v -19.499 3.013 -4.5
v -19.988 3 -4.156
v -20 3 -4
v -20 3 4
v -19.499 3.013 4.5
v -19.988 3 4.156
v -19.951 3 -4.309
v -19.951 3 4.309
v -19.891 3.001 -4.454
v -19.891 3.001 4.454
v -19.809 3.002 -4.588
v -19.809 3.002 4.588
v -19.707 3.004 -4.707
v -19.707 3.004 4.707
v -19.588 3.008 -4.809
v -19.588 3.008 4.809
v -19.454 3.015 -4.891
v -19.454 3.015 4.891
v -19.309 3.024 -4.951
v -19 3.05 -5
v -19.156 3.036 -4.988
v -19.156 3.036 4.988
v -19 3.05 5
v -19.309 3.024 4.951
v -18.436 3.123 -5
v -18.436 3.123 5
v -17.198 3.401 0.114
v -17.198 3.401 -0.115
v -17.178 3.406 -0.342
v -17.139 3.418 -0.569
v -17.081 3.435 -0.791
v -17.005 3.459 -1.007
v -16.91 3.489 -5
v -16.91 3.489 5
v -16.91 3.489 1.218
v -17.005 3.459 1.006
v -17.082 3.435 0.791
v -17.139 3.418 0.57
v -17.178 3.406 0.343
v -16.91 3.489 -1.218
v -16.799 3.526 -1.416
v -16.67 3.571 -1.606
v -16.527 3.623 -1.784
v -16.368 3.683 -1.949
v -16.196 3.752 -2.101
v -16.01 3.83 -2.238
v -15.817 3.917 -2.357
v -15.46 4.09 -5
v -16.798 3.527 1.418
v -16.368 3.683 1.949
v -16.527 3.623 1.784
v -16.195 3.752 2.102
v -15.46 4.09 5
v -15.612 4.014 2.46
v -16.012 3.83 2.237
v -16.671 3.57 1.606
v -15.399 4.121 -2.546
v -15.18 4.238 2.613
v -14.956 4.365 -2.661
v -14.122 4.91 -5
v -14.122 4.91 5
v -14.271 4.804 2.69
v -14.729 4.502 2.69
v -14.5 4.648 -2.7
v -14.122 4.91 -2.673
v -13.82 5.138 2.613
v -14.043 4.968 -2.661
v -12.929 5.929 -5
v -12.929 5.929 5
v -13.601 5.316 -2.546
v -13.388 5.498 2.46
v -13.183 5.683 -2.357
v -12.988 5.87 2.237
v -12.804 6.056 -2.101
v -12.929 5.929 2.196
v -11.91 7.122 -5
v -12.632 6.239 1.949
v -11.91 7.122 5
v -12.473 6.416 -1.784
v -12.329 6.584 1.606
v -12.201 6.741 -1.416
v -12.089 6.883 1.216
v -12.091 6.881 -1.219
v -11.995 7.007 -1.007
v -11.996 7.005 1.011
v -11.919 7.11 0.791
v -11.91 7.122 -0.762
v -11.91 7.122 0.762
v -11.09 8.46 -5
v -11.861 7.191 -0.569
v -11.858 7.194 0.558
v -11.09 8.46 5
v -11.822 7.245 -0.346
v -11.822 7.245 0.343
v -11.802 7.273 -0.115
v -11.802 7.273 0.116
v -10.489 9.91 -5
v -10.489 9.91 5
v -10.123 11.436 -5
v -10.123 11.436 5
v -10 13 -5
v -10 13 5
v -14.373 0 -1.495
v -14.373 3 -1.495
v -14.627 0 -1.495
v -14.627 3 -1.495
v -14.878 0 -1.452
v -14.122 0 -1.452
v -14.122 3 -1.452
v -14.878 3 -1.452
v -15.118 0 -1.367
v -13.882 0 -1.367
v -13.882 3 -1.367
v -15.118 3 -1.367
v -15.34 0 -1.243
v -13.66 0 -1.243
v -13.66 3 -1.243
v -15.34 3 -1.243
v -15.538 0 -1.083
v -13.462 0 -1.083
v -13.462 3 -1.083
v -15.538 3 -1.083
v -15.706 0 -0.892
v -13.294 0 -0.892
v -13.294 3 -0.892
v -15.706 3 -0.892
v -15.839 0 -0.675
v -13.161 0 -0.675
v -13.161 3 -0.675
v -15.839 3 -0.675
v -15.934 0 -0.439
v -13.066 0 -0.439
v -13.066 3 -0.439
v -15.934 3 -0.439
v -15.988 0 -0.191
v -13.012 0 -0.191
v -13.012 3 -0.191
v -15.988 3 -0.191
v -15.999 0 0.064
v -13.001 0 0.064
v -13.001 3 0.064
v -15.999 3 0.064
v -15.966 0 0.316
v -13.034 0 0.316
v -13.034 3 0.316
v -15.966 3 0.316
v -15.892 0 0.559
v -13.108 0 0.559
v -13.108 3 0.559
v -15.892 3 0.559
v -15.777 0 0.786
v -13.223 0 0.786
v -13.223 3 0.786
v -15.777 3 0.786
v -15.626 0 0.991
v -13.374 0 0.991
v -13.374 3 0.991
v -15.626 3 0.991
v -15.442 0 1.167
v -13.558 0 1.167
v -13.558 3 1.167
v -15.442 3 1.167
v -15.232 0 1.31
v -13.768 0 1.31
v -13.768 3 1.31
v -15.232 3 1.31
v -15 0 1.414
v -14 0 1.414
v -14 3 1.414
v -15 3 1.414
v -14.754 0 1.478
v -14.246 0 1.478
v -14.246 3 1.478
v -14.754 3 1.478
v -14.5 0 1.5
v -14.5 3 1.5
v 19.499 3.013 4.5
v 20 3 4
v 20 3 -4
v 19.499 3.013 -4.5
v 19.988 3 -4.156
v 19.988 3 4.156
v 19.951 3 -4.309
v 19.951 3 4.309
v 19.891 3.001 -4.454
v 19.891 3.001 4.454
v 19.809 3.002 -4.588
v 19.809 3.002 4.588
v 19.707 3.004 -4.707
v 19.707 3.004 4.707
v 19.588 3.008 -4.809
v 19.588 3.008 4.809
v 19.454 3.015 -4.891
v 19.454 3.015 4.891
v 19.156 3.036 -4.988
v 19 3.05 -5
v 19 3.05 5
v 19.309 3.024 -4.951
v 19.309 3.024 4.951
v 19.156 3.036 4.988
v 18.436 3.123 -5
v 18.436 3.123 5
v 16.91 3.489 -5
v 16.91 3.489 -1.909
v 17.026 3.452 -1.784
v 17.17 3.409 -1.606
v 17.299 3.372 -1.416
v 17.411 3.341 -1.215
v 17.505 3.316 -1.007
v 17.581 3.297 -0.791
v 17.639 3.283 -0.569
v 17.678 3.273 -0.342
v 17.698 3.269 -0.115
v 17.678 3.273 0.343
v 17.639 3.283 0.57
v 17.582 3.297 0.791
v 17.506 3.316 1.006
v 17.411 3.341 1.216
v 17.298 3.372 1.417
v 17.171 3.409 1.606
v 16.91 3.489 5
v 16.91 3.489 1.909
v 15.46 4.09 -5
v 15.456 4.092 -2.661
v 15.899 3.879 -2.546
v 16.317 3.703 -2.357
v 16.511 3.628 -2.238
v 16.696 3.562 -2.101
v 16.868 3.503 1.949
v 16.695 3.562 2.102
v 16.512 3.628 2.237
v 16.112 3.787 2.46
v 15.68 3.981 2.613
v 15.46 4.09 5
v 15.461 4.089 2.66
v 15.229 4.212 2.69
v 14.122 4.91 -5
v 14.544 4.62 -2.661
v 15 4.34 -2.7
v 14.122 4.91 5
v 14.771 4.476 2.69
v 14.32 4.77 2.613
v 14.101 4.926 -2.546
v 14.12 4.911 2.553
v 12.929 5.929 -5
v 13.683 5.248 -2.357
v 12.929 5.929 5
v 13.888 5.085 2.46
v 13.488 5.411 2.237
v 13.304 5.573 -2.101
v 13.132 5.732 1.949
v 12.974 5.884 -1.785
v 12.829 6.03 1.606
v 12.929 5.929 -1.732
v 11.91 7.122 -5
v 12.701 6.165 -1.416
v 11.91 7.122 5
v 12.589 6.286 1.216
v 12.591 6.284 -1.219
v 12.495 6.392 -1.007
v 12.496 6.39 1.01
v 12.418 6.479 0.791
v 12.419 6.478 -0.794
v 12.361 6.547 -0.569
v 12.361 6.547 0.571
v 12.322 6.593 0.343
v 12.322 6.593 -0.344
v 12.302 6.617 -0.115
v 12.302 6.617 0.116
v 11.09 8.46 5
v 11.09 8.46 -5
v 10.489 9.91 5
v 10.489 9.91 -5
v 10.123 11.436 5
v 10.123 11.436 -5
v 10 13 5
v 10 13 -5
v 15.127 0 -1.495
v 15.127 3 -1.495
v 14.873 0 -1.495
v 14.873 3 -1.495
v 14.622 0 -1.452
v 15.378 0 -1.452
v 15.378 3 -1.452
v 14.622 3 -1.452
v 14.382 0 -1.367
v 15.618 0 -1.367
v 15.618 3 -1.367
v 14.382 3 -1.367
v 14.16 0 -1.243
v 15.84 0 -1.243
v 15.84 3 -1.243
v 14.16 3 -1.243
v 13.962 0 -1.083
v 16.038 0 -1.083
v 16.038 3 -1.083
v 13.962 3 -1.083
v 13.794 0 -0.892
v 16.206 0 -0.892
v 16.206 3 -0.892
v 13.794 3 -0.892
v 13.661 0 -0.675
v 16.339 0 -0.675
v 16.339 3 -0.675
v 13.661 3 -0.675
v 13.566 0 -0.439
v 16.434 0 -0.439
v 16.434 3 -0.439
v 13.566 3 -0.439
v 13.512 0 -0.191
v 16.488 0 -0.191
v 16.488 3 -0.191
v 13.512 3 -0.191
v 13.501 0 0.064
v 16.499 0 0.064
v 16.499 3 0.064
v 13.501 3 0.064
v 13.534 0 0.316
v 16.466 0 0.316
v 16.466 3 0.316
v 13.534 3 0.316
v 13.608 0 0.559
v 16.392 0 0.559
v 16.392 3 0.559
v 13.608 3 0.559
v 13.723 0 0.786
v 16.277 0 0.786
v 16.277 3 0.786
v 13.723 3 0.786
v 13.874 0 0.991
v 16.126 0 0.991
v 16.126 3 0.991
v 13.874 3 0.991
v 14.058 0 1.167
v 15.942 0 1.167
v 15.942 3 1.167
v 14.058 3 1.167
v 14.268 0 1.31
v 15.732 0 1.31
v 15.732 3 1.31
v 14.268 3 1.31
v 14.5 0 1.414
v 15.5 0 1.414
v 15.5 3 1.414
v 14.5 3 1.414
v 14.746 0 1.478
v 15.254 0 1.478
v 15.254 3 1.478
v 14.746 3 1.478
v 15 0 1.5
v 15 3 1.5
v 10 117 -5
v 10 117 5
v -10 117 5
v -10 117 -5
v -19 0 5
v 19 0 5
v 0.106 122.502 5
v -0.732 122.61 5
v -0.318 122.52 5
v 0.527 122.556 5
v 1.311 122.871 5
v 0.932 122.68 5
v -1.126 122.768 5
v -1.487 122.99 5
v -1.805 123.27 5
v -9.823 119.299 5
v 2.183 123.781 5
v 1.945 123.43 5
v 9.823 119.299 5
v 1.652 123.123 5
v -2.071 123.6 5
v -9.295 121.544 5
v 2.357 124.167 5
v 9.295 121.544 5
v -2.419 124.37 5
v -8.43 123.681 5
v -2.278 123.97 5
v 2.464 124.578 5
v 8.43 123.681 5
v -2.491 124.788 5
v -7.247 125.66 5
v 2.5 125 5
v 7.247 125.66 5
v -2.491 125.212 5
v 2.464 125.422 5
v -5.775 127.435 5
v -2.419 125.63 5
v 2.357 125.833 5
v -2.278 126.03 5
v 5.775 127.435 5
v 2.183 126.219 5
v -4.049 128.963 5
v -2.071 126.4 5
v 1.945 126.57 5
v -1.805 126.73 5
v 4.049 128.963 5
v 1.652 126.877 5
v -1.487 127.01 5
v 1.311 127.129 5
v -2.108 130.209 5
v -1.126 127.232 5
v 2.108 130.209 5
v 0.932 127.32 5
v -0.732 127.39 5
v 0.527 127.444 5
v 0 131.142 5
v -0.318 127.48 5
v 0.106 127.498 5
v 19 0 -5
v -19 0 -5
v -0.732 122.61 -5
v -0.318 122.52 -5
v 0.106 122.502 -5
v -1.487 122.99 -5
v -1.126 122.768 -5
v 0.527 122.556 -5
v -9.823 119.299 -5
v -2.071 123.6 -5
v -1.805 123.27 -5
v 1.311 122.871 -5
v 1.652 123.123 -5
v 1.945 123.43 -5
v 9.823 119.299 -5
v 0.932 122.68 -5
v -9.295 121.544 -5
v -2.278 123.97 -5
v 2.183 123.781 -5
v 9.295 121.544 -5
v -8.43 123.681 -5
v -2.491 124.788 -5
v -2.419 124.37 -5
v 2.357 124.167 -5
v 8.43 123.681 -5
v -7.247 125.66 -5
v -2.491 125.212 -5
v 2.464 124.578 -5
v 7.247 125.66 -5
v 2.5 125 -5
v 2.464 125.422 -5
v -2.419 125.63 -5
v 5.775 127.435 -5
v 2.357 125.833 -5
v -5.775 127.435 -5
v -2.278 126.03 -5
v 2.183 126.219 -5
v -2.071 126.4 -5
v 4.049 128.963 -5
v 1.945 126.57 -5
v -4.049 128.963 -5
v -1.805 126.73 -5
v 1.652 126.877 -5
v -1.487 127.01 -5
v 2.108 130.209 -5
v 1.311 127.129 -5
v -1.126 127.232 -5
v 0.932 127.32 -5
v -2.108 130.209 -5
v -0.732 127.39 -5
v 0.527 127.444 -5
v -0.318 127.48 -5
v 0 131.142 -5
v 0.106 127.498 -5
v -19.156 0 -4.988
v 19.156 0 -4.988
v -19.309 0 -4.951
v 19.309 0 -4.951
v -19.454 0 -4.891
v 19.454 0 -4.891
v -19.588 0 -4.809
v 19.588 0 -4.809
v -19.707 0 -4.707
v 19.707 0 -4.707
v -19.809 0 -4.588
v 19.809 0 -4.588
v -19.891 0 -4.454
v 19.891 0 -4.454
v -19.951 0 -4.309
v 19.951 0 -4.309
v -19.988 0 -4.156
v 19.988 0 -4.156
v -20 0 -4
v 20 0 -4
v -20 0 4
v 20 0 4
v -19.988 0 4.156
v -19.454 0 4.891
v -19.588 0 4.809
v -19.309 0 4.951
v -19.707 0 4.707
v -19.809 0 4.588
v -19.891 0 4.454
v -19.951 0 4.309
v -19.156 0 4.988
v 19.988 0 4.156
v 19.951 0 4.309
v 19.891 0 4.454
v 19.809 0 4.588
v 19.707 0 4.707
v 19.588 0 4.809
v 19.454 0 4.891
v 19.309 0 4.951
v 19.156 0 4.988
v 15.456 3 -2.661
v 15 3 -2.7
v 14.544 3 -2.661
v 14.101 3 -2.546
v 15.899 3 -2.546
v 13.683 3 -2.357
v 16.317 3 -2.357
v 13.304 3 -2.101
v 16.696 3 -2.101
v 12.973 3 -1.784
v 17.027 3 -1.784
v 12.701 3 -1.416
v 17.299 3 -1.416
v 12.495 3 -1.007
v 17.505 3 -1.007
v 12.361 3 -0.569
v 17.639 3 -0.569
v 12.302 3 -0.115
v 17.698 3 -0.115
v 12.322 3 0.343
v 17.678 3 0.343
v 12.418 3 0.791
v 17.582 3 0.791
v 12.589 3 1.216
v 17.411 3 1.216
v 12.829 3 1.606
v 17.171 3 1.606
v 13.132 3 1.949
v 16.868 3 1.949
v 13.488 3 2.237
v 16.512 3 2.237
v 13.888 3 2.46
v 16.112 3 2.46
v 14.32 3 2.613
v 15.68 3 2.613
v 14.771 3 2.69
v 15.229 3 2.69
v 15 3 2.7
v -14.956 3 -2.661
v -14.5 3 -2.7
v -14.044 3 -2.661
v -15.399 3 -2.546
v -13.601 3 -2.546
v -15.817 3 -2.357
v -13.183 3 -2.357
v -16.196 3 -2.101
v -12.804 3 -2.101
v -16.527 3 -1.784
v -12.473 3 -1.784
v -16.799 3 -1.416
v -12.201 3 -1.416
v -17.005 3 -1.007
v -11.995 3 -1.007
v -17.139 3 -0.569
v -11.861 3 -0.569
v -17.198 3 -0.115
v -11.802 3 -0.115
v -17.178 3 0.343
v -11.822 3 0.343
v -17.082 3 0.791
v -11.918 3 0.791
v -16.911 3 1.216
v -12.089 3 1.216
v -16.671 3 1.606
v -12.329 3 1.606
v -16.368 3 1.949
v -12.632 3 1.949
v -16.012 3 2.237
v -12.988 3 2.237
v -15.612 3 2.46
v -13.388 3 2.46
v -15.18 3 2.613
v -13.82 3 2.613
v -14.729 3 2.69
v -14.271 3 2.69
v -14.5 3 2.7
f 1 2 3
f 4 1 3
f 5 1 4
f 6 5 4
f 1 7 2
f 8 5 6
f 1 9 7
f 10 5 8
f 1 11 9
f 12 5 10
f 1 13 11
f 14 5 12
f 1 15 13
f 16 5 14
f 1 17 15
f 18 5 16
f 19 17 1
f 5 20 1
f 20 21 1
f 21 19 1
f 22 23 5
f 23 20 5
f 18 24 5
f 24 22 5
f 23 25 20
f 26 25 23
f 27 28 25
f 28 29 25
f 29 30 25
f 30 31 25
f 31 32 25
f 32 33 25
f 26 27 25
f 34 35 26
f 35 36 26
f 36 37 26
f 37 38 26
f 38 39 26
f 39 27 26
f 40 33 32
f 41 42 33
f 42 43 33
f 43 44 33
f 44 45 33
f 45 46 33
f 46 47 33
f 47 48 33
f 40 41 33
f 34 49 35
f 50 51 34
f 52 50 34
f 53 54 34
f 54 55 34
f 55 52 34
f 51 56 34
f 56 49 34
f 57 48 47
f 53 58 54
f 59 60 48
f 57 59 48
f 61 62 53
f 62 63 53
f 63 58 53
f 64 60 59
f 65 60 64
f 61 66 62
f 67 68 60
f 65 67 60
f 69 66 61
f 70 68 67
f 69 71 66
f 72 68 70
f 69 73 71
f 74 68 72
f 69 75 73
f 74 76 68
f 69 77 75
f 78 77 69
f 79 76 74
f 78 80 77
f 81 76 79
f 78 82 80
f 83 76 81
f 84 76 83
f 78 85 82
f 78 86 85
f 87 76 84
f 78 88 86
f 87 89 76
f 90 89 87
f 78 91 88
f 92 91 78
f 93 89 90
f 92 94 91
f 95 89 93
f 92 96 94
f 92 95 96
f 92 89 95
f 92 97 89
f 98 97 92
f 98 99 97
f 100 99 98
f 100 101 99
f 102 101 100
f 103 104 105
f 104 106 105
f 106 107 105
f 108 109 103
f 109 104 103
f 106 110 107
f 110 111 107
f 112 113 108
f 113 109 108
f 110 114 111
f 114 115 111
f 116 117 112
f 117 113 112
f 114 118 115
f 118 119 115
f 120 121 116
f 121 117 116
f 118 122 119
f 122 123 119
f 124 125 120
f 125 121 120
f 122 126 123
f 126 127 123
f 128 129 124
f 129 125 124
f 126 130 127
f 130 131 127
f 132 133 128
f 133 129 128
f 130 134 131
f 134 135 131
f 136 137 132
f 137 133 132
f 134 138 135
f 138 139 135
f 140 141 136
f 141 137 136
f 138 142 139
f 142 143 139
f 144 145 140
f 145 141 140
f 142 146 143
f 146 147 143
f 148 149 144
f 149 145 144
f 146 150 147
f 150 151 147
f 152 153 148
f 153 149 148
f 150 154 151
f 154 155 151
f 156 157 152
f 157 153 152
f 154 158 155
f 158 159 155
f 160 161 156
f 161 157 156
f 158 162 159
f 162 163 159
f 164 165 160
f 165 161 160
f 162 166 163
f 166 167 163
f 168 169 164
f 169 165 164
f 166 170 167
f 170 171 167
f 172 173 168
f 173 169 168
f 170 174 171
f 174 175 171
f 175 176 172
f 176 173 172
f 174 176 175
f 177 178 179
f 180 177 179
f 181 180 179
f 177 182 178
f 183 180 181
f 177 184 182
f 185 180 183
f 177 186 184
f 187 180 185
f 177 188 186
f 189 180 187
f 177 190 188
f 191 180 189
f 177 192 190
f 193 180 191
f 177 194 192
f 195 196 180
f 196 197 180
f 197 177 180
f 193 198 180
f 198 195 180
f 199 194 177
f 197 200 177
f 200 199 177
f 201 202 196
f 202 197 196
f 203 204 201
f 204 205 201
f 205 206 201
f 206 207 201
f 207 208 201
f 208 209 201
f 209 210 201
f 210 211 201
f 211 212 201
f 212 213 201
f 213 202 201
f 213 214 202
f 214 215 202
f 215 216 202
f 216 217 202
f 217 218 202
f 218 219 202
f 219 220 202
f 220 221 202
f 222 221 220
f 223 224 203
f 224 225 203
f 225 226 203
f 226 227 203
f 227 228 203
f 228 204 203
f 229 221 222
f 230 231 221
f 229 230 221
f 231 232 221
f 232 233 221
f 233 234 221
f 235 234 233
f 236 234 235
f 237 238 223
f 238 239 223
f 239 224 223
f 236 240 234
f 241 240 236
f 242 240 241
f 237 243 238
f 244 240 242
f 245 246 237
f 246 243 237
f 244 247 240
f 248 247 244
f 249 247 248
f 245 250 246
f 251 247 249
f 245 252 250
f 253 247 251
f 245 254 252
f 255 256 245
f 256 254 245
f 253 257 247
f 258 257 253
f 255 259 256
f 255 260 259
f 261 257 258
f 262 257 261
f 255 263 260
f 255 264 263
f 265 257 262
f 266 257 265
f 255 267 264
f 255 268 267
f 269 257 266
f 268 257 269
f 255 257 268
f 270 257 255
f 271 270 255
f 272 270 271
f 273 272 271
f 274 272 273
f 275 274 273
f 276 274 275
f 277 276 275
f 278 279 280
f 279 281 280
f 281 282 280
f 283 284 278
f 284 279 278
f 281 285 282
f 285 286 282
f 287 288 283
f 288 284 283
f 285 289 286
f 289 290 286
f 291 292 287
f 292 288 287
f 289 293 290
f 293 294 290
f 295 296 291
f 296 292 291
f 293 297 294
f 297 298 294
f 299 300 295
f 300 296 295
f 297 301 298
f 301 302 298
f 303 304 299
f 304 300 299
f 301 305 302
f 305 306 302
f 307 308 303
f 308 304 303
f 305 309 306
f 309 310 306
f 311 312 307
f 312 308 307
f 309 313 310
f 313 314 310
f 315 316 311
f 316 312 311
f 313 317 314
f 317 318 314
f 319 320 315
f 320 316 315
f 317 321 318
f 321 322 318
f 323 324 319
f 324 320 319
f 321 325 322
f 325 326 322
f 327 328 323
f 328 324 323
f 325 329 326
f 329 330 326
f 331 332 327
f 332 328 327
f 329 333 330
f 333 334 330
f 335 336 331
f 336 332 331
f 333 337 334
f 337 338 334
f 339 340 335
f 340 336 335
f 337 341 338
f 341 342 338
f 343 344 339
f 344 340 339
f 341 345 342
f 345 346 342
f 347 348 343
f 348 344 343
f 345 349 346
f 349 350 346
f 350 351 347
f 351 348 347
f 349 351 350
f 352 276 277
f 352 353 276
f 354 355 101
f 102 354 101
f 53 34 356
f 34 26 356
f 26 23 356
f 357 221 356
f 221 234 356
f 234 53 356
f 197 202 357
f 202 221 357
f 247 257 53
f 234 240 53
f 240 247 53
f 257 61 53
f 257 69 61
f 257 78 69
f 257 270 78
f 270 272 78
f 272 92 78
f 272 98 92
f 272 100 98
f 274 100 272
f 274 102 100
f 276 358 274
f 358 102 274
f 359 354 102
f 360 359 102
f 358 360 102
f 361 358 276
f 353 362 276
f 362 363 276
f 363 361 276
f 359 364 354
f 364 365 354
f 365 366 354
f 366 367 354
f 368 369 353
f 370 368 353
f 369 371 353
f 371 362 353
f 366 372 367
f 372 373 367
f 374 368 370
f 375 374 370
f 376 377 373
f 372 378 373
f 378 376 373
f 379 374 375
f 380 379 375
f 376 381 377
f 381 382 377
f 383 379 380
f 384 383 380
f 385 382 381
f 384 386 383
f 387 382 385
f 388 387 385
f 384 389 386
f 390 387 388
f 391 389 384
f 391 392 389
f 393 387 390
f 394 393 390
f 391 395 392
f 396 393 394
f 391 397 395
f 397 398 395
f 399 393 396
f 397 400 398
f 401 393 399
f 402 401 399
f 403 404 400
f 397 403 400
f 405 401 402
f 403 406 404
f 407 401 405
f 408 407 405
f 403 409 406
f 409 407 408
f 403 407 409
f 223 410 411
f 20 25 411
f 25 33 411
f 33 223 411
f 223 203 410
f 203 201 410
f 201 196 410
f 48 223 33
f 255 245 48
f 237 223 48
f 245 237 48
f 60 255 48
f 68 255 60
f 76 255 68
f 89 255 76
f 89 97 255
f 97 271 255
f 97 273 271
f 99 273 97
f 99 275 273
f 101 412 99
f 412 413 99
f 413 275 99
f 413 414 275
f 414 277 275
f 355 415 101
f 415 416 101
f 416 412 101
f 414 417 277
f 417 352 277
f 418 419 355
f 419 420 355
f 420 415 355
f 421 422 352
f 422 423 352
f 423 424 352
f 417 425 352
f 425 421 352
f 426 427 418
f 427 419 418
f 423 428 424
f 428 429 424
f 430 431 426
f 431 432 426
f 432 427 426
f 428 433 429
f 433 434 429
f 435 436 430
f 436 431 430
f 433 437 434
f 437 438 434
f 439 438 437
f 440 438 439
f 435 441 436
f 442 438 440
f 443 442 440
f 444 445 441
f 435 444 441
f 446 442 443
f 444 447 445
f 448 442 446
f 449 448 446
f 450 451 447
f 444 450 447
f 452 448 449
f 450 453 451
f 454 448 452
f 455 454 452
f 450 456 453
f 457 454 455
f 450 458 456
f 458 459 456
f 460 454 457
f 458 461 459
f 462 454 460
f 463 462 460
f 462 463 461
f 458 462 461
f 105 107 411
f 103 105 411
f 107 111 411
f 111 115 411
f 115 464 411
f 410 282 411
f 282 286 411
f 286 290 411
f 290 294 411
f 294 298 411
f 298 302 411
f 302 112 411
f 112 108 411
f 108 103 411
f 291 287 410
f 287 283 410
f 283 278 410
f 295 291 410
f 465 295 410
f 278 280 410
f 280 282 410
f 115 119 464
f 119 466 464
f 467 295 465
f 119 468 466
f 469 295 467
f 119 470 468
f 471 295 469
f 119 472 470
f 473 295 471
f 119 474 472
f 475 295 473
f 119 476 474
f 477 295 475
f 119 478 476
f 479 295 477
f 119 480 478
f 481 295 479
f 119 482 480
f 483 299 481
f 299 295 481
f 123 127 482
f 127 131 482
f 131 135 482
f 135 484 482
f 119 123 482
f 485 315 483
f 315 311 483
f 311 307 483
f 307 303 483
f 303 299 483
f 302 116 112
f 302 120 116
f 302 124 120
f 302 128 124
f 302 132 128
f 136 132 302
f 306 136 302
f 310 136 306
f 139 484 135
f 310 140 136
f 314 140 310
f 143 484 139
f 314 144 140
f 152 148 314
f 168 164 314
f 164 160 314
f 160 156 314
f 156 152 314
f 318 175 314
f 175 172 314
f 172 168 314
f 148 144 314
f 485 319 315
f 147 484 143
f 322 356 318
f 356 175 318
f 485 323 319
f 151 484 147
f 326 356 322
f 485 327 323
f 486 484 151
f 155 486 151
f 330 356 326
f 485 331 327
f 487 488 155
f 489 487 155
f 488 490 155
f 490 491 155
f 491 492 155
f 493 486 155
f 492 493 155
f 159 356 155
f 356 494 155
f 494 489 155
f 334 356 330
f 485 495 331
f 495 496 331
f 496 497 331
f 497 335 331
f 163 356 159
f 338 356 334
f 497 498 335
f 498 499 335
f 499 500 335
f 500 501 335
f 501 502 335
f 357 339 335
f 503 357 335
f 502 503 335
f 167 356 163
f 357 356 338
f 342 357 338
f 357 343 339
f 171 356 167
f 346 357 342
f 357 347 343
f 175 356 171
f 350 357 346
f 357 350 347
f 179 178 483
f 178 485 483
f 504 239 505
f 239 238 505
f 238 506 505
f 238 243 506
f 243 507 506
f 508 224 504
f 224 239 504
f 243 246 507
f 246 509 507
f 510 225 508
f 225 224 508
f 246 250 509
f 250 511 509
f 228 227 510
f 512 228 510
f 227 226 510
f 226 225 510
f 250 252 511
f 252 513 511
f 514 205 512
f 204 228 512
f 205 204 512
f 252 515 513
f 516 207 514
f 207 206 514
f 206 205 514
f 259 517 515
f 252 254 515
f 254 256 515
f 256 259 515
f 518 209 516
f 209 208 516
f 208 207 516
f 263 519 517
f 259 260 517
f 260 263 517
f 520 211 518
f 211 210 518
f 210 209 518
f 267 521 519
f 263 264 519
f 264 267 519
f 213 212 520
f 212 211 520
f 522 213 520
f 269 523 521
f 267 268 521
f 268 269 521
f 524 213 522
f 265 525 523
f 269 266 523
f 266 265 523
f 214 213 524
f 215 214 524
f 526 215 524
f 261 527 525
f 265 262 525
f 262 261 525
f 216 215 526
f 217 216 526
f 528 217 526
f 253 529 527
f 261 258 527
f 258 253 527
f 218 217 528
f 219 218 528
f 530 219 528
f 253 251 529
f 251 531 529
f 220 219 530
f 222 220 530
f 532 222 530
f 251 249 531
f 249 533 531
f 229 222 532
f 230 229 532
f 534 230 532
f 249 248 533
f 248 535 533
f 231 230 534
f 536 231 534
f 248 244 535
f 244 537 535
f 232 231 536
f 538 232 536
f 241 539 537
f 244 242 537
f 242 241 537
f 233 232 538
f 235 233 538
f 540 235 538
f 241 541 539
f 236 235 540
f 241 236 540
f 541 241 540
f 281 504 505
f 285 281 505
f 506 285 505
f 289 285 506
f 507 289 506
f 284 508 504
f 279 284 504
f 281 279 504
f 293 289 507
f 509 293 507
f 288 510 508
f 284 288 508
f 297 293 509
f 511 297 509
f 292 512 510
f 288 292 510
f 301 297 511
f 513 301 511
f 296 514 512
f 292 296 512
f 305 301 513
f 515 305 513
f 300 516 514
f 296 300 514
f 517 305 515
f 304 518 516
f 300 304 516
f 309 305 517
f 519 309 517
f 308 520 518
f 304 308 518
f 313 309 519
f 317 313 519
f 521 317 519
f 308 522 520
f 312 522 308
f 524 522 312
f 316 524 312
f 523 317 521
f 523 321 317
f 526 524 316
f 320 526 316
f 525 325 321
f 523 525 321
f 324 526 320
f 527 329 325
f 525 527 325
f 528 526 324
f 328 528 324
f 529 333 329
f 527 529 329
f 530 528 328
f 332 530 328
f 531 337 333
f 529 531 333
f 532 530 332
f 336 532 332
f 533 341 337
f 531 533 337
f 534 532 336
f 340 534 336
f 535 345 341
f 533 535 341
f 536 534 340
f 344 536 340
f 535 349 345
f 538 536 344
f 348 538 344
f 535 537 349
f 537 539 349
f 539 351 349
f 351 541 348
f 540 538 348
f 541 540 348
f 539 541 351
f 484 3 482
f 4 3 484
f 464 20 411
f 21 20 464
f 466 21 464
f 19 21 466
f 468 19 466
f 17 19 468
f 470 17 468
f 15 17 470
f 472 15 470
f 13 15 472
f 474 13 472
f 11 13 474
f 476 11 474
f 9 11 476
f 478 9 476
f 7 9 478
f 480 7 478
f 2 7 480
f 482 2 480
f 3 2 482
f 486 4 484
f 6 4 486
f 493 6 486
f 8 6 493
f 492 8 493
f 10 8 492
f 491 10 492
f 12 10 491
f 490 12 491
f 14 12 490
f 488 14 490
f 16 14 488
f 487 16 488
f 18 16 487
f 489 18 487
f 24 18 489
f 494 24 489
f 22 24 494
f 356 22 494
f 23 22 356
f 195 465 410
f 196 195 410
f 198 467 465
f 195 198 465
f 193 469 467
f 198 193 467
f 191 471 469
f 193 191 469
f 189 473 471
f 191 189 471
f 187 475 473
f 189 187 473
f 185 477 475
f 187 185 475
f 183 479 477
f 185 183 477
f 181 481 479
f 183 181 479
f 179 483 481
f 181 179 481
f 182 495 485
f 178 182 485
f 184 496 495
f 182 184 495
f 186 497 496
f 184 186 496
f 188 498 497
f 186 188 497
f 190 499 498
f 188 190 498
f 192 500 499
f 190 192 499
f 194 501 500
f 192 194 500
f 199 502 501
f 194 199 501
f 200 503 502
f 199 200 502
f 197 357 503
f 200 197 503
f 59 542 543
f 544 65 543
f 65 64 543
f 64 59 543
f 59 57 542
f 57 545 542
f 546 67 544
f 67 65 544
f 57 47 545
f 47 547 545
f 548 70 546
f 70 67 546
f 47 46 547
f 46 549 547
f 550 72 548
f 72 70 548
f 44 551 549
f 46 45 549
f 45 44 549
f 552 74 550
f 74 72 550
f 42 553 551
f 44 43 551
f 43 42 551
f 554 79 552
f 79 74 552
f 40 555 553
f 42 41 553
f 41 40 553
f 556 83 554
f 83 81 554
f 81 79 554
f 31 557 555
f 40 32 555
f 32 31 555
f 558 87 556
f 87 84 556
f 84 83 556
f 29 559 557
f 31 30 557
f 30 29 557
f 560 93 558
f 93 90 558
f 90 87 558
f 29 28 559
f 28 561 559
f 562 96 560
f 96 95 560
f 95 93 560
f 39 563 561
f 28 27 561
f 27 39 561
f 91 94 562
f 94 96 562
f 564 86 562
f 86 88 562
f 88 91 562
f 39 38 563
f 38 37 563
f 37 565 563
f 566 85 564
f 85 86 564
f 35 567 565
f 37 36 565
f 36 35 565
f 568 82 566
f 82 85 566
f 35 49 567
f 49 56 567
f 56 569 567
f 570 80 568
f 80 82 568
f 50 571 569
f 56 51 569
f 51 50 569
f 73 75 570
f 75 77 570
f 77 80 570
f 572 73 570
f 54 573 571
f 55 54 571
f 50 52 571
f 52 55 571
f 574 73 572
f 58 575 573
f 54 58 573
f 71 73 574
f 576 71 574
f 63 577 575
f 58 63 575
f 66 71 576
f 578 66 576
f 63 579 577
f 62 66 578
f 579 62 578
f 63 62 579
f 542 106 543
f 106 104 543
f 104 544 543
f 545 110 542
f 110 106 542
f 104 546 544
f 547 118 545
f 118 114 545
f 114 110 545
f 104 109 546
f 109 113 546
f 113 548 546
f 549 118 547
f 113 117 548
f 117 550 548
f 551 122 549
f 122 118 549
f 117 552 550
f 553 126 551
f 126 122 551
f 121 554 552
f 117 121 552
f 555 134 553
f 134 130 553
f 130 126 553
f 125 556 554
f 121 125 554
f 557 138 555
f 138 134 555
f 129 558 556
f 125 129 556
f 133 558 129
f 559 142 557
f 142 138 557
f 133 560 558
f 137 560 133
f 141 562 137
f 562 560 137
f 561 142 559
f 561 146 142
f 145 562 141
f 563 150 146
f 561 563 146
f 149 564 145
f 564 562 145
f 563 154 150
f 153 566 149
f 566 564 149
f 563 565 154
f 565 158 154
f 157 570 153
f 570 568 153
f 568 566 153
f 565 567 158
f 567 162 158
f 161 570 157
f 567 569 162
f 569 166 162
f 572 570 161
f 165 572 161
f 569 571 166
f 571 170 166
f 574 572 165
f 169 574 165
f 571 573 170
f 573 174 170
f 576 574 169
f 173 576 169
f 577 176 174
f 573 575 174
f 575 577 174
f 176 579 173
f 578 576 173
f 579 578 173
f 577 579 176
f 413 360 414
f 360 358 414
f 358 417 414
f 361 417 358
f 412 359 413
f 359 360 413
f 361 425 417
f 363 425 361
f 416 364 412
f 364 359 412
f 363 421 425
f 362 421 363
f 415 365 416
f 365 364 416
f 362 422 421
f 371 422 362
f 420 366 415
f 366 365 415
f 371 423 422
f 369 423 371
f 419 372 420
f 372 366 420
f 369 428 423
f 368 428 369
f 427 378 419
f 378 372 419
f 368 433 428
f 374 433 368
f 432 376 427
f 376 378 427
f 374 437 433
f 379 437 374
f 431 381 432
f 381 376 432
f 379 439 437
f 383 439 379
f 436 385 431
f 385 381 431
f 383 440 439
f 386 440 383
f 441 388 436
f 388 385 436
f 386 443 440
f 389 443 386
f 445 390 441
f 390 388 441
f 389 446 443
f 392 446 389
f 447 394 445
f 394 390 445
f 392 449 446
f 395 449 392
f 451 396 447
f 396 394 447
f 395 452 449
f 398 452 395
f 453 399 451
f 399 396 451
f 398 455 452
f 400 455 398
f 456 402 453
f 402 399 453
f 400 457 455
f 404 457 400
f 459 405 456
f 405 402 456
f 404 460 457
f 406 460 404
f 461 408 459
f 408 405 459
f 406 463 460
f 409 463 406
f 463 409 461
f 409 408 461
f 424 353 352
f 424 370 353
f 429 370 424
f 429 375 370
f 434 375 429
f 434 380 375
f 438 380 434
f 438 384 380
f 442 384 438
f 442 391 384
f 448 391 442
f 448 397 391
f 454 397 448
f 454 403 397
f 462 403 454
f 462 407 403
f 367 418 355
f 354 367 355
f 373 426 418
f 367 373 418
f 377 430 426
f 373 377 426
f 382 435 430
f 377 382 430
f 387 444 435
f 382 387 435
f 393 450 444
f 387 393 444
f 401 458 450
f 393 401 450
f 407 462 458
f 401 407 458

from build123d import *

# Parameters (mm, degrees)
SKETCH2_W               = 20
SKETCH2_H               = 10
BOSS_EXTRUDE1_DEPTH     = 132
SKETCH6_W               = 10
SKETCH6_H               = 3
BOSS_EXTRUDE2_DEPTH     = 10
FILLET2_R               = 10
CUT_EXTRUDE5_DEPTH      = 131.636901372
CUT_EXTRUDE5_DEPTH_BACK = 131.636901372
SKETCH19_R              = 1.5
SKETCH19_5_R            = 2.7
SKETCH19_5_R_2          = 1.5
CUT_EXTRUDE7_DEPTH      = 131.636901376
FILLET1_R               = 1
FILLET3_R               = 10
CUT_EXTRUDE8_DEPTH      = 131.636901391
CUT_EXTRUDE8_DEPTH_BACK = 131.636901391
SKETCH20_R              = 1.5
SKETCH20_3_R            = 2.7
SKETCH20_3_R_2          = 1.5
CUT_EXTRUDE9_DEPTH      = 131.636901391
SKETCH21_R              = 2.5
CUT_EXTRUDE10_DEPTH     = 10
FILLET4_R               = 15


# Some blends are built 0.0001 mm under size
with BuildPart() as part:
    # Sketch2 → Boss-Extrude1 (new body)
    with BuildSketch(Plane(origin=(0, 0, 0), x_dir=(1, 0, 0), z_dir=(0, 1, 0))):
        Rectangle(SKETCH2_W, SKETCH2_H)
    extrude(amount=BOSS_EXTRUDE1_DEPTH)

    # Sketch6 → Boss-Extrude2 (add)
    with BuildSketch(Plane(origin=(10, 0, 0), x_dir=(0, 0, -1), z_dir=(1, 0, 0))):
        with Locations((0, 1.5)):
            Rectangle(SKETCH6_W, SKETCH6_H)
    boss_extrude2 = extrude(amount=BOSS_EXTRUDE2_DEPTH)

    # Fillet2
    fillet2_edges = [part.edges().sort_by_distance(p)[0] for p in [
        (10, 3, 0),
    ]]
    fillet(fillet2_edges, radius=FILLET2_R - 0.0001)  # a hair under: the kernel refuses the full size

    # Sketch19 → Cut-Extrude5 (cut, two sides: drawn at the far end of the back side and taken through both)
    with BuildSketch(Plane(origin=(0, 3, 0), x_dir=(1, 0, 0), z_dir=(0, 1, 0)).offset(-CUT_EXTRUDE5_DEPTH_BACK)):
        with Locations(Location((15, 0, 0), (0, 0, 270))):
            Circle(SKETCH19_R)
    extrude(amount=CUT_EXTRUDE5_DEPTH + CUT_EXTRUDE5_DEPTH_BACK, mode=Mode.SUBTRACT)

    # Sketch19<5> → Cut-Extrude7 (cut, through all)
    with BuildSketch(Plane(origin=(0, 3, 0), x_dir=(1, 0, 0), z_dir=(0, 1, 0))):
        with Locations(Location((15, 0, 0), (0, 0, 90))):
            Circle(SKETCH19_5_R)
        with Locations(Location((15, 0, 0), (0, 0, 270))):
            Circle(SKETCH19_5_R_2, mode=Mode.SUBTRACT)
    extrude(amount=CUT_EXTRUDE7_DEPTH, mode=Mode.SUBTRACT)

    # Mirror16: Boss-Extrude2 across plane
    add(boss_extrude2.mirror(Plane(origin=(0, 0, 0), x_dir=(0, 0, 1), z_dir=(1, 0, 0))))

    # Fillet1
    fillet1_edges = [part.edges().sort_by_distance(p)[0] for p in [
        (20, 1.5, 5),
        (20, 1.5, -5),
        (-20, 1.5, 5),
        (-20, 1.5, -5),
    ]]
    fillet(fillet1_edges, radius=FILLET1_R)

    # Fillet3
    fillet3_edges = [part.edges().sort_by_distance(p)[0] for p in [
        (-10, 3, 0),
    ]]
    fillet(fillet3_edges, radius=FILLET3_R - 0.0001)  # a hair under: the kernel refuses the full size

    # Sketch20 → Cut-Extrude8 (cut, two sides: drawn at the far end of the back side and taken through both)
    with BuildSketch(Plane(origin=(0, 3, 0), x_dir=(1, 0, 0), z_dir=(0, 1, 0)).offset(-CUT_EXTRUDE8_DEPTH_BACK)):
        with Locations(Location((-14.5, 0, 0), (0, 0, 270))):
            Circle(SKETCH20_R)
    extrude(amount=CUT_EXTRUDE8_DEPTH + CUT_EXTRUDE8_DEPTH_BACK, mode=Mode.SUBTRACT)

    # Sketch20<3> → Cut-Extrude9 (cut, through all)
    with BuildSketch(Plane(origin=(0, 3, 0), x_dir=(1, 0, 0), z_dir=(0, 1, 0))):
        with Locations(Location((-14.5, 0, 0), (0, 0, 90))):
            Circle(SKETCH20_3_R)
        with Locations(Location((-14.5, 0, 0), (0, 0, 270))):
            Circle(SKETCH20_3_R_2, mode=Mode.SUBTRACT)
    extrude(amount=CUT_EXTRUDE9_DEPTH, mode=Mode.SUBTRACT)

    # Sketch21 → Cut-Extrude10 (cut)
    with BuildSketch(Plane.XY.offset(5)):
        with Locations((0, 125)):
            Circle(SKETCH21_R)
    extrude(amount=-CUT_EXTRUDE10_DEPTH, mode=Mode.SUBTRACT)

    # Fillet4
    # the kernel refuses this fillet: 15 mm, written as the material it takes off along each edge
    with BuildSketch(Plane(origin=(-10, 132, 42.5), x_dir=(0, -1, 0), z_dir=(0, 0, -1))) as fillet4_piece_1:
        with BuildLine():
            CenterArc((FILLET4_R, -FILLET4_R), FILLET4_R, 90, 90)
            Line((0, -FILLET4_R), (0, 0))
            Line((0, 0), (FILLET4_R, 0))
        make_face()
    extrude(amount=85, mode=Mode.SUBTRACT)
    with BuildSketch(Plane(origin=(10, 132, -42.5), x_dir=(-1, 0, 0), z_dir=(0, 0, 1))) as fillet4_piece_2:
        with BuildLine():
            CenterArc((FILLET4_R, FILLET4_R), FILLET4_R, 180, 90)
            Line((0, FILLET4_R), (0, 0))
            Line((0, 0), (FILLET4_R, 0))
        make_face()
    extrude(amount=85, mode=Mode.SUBTRACT)


solid = part.part
